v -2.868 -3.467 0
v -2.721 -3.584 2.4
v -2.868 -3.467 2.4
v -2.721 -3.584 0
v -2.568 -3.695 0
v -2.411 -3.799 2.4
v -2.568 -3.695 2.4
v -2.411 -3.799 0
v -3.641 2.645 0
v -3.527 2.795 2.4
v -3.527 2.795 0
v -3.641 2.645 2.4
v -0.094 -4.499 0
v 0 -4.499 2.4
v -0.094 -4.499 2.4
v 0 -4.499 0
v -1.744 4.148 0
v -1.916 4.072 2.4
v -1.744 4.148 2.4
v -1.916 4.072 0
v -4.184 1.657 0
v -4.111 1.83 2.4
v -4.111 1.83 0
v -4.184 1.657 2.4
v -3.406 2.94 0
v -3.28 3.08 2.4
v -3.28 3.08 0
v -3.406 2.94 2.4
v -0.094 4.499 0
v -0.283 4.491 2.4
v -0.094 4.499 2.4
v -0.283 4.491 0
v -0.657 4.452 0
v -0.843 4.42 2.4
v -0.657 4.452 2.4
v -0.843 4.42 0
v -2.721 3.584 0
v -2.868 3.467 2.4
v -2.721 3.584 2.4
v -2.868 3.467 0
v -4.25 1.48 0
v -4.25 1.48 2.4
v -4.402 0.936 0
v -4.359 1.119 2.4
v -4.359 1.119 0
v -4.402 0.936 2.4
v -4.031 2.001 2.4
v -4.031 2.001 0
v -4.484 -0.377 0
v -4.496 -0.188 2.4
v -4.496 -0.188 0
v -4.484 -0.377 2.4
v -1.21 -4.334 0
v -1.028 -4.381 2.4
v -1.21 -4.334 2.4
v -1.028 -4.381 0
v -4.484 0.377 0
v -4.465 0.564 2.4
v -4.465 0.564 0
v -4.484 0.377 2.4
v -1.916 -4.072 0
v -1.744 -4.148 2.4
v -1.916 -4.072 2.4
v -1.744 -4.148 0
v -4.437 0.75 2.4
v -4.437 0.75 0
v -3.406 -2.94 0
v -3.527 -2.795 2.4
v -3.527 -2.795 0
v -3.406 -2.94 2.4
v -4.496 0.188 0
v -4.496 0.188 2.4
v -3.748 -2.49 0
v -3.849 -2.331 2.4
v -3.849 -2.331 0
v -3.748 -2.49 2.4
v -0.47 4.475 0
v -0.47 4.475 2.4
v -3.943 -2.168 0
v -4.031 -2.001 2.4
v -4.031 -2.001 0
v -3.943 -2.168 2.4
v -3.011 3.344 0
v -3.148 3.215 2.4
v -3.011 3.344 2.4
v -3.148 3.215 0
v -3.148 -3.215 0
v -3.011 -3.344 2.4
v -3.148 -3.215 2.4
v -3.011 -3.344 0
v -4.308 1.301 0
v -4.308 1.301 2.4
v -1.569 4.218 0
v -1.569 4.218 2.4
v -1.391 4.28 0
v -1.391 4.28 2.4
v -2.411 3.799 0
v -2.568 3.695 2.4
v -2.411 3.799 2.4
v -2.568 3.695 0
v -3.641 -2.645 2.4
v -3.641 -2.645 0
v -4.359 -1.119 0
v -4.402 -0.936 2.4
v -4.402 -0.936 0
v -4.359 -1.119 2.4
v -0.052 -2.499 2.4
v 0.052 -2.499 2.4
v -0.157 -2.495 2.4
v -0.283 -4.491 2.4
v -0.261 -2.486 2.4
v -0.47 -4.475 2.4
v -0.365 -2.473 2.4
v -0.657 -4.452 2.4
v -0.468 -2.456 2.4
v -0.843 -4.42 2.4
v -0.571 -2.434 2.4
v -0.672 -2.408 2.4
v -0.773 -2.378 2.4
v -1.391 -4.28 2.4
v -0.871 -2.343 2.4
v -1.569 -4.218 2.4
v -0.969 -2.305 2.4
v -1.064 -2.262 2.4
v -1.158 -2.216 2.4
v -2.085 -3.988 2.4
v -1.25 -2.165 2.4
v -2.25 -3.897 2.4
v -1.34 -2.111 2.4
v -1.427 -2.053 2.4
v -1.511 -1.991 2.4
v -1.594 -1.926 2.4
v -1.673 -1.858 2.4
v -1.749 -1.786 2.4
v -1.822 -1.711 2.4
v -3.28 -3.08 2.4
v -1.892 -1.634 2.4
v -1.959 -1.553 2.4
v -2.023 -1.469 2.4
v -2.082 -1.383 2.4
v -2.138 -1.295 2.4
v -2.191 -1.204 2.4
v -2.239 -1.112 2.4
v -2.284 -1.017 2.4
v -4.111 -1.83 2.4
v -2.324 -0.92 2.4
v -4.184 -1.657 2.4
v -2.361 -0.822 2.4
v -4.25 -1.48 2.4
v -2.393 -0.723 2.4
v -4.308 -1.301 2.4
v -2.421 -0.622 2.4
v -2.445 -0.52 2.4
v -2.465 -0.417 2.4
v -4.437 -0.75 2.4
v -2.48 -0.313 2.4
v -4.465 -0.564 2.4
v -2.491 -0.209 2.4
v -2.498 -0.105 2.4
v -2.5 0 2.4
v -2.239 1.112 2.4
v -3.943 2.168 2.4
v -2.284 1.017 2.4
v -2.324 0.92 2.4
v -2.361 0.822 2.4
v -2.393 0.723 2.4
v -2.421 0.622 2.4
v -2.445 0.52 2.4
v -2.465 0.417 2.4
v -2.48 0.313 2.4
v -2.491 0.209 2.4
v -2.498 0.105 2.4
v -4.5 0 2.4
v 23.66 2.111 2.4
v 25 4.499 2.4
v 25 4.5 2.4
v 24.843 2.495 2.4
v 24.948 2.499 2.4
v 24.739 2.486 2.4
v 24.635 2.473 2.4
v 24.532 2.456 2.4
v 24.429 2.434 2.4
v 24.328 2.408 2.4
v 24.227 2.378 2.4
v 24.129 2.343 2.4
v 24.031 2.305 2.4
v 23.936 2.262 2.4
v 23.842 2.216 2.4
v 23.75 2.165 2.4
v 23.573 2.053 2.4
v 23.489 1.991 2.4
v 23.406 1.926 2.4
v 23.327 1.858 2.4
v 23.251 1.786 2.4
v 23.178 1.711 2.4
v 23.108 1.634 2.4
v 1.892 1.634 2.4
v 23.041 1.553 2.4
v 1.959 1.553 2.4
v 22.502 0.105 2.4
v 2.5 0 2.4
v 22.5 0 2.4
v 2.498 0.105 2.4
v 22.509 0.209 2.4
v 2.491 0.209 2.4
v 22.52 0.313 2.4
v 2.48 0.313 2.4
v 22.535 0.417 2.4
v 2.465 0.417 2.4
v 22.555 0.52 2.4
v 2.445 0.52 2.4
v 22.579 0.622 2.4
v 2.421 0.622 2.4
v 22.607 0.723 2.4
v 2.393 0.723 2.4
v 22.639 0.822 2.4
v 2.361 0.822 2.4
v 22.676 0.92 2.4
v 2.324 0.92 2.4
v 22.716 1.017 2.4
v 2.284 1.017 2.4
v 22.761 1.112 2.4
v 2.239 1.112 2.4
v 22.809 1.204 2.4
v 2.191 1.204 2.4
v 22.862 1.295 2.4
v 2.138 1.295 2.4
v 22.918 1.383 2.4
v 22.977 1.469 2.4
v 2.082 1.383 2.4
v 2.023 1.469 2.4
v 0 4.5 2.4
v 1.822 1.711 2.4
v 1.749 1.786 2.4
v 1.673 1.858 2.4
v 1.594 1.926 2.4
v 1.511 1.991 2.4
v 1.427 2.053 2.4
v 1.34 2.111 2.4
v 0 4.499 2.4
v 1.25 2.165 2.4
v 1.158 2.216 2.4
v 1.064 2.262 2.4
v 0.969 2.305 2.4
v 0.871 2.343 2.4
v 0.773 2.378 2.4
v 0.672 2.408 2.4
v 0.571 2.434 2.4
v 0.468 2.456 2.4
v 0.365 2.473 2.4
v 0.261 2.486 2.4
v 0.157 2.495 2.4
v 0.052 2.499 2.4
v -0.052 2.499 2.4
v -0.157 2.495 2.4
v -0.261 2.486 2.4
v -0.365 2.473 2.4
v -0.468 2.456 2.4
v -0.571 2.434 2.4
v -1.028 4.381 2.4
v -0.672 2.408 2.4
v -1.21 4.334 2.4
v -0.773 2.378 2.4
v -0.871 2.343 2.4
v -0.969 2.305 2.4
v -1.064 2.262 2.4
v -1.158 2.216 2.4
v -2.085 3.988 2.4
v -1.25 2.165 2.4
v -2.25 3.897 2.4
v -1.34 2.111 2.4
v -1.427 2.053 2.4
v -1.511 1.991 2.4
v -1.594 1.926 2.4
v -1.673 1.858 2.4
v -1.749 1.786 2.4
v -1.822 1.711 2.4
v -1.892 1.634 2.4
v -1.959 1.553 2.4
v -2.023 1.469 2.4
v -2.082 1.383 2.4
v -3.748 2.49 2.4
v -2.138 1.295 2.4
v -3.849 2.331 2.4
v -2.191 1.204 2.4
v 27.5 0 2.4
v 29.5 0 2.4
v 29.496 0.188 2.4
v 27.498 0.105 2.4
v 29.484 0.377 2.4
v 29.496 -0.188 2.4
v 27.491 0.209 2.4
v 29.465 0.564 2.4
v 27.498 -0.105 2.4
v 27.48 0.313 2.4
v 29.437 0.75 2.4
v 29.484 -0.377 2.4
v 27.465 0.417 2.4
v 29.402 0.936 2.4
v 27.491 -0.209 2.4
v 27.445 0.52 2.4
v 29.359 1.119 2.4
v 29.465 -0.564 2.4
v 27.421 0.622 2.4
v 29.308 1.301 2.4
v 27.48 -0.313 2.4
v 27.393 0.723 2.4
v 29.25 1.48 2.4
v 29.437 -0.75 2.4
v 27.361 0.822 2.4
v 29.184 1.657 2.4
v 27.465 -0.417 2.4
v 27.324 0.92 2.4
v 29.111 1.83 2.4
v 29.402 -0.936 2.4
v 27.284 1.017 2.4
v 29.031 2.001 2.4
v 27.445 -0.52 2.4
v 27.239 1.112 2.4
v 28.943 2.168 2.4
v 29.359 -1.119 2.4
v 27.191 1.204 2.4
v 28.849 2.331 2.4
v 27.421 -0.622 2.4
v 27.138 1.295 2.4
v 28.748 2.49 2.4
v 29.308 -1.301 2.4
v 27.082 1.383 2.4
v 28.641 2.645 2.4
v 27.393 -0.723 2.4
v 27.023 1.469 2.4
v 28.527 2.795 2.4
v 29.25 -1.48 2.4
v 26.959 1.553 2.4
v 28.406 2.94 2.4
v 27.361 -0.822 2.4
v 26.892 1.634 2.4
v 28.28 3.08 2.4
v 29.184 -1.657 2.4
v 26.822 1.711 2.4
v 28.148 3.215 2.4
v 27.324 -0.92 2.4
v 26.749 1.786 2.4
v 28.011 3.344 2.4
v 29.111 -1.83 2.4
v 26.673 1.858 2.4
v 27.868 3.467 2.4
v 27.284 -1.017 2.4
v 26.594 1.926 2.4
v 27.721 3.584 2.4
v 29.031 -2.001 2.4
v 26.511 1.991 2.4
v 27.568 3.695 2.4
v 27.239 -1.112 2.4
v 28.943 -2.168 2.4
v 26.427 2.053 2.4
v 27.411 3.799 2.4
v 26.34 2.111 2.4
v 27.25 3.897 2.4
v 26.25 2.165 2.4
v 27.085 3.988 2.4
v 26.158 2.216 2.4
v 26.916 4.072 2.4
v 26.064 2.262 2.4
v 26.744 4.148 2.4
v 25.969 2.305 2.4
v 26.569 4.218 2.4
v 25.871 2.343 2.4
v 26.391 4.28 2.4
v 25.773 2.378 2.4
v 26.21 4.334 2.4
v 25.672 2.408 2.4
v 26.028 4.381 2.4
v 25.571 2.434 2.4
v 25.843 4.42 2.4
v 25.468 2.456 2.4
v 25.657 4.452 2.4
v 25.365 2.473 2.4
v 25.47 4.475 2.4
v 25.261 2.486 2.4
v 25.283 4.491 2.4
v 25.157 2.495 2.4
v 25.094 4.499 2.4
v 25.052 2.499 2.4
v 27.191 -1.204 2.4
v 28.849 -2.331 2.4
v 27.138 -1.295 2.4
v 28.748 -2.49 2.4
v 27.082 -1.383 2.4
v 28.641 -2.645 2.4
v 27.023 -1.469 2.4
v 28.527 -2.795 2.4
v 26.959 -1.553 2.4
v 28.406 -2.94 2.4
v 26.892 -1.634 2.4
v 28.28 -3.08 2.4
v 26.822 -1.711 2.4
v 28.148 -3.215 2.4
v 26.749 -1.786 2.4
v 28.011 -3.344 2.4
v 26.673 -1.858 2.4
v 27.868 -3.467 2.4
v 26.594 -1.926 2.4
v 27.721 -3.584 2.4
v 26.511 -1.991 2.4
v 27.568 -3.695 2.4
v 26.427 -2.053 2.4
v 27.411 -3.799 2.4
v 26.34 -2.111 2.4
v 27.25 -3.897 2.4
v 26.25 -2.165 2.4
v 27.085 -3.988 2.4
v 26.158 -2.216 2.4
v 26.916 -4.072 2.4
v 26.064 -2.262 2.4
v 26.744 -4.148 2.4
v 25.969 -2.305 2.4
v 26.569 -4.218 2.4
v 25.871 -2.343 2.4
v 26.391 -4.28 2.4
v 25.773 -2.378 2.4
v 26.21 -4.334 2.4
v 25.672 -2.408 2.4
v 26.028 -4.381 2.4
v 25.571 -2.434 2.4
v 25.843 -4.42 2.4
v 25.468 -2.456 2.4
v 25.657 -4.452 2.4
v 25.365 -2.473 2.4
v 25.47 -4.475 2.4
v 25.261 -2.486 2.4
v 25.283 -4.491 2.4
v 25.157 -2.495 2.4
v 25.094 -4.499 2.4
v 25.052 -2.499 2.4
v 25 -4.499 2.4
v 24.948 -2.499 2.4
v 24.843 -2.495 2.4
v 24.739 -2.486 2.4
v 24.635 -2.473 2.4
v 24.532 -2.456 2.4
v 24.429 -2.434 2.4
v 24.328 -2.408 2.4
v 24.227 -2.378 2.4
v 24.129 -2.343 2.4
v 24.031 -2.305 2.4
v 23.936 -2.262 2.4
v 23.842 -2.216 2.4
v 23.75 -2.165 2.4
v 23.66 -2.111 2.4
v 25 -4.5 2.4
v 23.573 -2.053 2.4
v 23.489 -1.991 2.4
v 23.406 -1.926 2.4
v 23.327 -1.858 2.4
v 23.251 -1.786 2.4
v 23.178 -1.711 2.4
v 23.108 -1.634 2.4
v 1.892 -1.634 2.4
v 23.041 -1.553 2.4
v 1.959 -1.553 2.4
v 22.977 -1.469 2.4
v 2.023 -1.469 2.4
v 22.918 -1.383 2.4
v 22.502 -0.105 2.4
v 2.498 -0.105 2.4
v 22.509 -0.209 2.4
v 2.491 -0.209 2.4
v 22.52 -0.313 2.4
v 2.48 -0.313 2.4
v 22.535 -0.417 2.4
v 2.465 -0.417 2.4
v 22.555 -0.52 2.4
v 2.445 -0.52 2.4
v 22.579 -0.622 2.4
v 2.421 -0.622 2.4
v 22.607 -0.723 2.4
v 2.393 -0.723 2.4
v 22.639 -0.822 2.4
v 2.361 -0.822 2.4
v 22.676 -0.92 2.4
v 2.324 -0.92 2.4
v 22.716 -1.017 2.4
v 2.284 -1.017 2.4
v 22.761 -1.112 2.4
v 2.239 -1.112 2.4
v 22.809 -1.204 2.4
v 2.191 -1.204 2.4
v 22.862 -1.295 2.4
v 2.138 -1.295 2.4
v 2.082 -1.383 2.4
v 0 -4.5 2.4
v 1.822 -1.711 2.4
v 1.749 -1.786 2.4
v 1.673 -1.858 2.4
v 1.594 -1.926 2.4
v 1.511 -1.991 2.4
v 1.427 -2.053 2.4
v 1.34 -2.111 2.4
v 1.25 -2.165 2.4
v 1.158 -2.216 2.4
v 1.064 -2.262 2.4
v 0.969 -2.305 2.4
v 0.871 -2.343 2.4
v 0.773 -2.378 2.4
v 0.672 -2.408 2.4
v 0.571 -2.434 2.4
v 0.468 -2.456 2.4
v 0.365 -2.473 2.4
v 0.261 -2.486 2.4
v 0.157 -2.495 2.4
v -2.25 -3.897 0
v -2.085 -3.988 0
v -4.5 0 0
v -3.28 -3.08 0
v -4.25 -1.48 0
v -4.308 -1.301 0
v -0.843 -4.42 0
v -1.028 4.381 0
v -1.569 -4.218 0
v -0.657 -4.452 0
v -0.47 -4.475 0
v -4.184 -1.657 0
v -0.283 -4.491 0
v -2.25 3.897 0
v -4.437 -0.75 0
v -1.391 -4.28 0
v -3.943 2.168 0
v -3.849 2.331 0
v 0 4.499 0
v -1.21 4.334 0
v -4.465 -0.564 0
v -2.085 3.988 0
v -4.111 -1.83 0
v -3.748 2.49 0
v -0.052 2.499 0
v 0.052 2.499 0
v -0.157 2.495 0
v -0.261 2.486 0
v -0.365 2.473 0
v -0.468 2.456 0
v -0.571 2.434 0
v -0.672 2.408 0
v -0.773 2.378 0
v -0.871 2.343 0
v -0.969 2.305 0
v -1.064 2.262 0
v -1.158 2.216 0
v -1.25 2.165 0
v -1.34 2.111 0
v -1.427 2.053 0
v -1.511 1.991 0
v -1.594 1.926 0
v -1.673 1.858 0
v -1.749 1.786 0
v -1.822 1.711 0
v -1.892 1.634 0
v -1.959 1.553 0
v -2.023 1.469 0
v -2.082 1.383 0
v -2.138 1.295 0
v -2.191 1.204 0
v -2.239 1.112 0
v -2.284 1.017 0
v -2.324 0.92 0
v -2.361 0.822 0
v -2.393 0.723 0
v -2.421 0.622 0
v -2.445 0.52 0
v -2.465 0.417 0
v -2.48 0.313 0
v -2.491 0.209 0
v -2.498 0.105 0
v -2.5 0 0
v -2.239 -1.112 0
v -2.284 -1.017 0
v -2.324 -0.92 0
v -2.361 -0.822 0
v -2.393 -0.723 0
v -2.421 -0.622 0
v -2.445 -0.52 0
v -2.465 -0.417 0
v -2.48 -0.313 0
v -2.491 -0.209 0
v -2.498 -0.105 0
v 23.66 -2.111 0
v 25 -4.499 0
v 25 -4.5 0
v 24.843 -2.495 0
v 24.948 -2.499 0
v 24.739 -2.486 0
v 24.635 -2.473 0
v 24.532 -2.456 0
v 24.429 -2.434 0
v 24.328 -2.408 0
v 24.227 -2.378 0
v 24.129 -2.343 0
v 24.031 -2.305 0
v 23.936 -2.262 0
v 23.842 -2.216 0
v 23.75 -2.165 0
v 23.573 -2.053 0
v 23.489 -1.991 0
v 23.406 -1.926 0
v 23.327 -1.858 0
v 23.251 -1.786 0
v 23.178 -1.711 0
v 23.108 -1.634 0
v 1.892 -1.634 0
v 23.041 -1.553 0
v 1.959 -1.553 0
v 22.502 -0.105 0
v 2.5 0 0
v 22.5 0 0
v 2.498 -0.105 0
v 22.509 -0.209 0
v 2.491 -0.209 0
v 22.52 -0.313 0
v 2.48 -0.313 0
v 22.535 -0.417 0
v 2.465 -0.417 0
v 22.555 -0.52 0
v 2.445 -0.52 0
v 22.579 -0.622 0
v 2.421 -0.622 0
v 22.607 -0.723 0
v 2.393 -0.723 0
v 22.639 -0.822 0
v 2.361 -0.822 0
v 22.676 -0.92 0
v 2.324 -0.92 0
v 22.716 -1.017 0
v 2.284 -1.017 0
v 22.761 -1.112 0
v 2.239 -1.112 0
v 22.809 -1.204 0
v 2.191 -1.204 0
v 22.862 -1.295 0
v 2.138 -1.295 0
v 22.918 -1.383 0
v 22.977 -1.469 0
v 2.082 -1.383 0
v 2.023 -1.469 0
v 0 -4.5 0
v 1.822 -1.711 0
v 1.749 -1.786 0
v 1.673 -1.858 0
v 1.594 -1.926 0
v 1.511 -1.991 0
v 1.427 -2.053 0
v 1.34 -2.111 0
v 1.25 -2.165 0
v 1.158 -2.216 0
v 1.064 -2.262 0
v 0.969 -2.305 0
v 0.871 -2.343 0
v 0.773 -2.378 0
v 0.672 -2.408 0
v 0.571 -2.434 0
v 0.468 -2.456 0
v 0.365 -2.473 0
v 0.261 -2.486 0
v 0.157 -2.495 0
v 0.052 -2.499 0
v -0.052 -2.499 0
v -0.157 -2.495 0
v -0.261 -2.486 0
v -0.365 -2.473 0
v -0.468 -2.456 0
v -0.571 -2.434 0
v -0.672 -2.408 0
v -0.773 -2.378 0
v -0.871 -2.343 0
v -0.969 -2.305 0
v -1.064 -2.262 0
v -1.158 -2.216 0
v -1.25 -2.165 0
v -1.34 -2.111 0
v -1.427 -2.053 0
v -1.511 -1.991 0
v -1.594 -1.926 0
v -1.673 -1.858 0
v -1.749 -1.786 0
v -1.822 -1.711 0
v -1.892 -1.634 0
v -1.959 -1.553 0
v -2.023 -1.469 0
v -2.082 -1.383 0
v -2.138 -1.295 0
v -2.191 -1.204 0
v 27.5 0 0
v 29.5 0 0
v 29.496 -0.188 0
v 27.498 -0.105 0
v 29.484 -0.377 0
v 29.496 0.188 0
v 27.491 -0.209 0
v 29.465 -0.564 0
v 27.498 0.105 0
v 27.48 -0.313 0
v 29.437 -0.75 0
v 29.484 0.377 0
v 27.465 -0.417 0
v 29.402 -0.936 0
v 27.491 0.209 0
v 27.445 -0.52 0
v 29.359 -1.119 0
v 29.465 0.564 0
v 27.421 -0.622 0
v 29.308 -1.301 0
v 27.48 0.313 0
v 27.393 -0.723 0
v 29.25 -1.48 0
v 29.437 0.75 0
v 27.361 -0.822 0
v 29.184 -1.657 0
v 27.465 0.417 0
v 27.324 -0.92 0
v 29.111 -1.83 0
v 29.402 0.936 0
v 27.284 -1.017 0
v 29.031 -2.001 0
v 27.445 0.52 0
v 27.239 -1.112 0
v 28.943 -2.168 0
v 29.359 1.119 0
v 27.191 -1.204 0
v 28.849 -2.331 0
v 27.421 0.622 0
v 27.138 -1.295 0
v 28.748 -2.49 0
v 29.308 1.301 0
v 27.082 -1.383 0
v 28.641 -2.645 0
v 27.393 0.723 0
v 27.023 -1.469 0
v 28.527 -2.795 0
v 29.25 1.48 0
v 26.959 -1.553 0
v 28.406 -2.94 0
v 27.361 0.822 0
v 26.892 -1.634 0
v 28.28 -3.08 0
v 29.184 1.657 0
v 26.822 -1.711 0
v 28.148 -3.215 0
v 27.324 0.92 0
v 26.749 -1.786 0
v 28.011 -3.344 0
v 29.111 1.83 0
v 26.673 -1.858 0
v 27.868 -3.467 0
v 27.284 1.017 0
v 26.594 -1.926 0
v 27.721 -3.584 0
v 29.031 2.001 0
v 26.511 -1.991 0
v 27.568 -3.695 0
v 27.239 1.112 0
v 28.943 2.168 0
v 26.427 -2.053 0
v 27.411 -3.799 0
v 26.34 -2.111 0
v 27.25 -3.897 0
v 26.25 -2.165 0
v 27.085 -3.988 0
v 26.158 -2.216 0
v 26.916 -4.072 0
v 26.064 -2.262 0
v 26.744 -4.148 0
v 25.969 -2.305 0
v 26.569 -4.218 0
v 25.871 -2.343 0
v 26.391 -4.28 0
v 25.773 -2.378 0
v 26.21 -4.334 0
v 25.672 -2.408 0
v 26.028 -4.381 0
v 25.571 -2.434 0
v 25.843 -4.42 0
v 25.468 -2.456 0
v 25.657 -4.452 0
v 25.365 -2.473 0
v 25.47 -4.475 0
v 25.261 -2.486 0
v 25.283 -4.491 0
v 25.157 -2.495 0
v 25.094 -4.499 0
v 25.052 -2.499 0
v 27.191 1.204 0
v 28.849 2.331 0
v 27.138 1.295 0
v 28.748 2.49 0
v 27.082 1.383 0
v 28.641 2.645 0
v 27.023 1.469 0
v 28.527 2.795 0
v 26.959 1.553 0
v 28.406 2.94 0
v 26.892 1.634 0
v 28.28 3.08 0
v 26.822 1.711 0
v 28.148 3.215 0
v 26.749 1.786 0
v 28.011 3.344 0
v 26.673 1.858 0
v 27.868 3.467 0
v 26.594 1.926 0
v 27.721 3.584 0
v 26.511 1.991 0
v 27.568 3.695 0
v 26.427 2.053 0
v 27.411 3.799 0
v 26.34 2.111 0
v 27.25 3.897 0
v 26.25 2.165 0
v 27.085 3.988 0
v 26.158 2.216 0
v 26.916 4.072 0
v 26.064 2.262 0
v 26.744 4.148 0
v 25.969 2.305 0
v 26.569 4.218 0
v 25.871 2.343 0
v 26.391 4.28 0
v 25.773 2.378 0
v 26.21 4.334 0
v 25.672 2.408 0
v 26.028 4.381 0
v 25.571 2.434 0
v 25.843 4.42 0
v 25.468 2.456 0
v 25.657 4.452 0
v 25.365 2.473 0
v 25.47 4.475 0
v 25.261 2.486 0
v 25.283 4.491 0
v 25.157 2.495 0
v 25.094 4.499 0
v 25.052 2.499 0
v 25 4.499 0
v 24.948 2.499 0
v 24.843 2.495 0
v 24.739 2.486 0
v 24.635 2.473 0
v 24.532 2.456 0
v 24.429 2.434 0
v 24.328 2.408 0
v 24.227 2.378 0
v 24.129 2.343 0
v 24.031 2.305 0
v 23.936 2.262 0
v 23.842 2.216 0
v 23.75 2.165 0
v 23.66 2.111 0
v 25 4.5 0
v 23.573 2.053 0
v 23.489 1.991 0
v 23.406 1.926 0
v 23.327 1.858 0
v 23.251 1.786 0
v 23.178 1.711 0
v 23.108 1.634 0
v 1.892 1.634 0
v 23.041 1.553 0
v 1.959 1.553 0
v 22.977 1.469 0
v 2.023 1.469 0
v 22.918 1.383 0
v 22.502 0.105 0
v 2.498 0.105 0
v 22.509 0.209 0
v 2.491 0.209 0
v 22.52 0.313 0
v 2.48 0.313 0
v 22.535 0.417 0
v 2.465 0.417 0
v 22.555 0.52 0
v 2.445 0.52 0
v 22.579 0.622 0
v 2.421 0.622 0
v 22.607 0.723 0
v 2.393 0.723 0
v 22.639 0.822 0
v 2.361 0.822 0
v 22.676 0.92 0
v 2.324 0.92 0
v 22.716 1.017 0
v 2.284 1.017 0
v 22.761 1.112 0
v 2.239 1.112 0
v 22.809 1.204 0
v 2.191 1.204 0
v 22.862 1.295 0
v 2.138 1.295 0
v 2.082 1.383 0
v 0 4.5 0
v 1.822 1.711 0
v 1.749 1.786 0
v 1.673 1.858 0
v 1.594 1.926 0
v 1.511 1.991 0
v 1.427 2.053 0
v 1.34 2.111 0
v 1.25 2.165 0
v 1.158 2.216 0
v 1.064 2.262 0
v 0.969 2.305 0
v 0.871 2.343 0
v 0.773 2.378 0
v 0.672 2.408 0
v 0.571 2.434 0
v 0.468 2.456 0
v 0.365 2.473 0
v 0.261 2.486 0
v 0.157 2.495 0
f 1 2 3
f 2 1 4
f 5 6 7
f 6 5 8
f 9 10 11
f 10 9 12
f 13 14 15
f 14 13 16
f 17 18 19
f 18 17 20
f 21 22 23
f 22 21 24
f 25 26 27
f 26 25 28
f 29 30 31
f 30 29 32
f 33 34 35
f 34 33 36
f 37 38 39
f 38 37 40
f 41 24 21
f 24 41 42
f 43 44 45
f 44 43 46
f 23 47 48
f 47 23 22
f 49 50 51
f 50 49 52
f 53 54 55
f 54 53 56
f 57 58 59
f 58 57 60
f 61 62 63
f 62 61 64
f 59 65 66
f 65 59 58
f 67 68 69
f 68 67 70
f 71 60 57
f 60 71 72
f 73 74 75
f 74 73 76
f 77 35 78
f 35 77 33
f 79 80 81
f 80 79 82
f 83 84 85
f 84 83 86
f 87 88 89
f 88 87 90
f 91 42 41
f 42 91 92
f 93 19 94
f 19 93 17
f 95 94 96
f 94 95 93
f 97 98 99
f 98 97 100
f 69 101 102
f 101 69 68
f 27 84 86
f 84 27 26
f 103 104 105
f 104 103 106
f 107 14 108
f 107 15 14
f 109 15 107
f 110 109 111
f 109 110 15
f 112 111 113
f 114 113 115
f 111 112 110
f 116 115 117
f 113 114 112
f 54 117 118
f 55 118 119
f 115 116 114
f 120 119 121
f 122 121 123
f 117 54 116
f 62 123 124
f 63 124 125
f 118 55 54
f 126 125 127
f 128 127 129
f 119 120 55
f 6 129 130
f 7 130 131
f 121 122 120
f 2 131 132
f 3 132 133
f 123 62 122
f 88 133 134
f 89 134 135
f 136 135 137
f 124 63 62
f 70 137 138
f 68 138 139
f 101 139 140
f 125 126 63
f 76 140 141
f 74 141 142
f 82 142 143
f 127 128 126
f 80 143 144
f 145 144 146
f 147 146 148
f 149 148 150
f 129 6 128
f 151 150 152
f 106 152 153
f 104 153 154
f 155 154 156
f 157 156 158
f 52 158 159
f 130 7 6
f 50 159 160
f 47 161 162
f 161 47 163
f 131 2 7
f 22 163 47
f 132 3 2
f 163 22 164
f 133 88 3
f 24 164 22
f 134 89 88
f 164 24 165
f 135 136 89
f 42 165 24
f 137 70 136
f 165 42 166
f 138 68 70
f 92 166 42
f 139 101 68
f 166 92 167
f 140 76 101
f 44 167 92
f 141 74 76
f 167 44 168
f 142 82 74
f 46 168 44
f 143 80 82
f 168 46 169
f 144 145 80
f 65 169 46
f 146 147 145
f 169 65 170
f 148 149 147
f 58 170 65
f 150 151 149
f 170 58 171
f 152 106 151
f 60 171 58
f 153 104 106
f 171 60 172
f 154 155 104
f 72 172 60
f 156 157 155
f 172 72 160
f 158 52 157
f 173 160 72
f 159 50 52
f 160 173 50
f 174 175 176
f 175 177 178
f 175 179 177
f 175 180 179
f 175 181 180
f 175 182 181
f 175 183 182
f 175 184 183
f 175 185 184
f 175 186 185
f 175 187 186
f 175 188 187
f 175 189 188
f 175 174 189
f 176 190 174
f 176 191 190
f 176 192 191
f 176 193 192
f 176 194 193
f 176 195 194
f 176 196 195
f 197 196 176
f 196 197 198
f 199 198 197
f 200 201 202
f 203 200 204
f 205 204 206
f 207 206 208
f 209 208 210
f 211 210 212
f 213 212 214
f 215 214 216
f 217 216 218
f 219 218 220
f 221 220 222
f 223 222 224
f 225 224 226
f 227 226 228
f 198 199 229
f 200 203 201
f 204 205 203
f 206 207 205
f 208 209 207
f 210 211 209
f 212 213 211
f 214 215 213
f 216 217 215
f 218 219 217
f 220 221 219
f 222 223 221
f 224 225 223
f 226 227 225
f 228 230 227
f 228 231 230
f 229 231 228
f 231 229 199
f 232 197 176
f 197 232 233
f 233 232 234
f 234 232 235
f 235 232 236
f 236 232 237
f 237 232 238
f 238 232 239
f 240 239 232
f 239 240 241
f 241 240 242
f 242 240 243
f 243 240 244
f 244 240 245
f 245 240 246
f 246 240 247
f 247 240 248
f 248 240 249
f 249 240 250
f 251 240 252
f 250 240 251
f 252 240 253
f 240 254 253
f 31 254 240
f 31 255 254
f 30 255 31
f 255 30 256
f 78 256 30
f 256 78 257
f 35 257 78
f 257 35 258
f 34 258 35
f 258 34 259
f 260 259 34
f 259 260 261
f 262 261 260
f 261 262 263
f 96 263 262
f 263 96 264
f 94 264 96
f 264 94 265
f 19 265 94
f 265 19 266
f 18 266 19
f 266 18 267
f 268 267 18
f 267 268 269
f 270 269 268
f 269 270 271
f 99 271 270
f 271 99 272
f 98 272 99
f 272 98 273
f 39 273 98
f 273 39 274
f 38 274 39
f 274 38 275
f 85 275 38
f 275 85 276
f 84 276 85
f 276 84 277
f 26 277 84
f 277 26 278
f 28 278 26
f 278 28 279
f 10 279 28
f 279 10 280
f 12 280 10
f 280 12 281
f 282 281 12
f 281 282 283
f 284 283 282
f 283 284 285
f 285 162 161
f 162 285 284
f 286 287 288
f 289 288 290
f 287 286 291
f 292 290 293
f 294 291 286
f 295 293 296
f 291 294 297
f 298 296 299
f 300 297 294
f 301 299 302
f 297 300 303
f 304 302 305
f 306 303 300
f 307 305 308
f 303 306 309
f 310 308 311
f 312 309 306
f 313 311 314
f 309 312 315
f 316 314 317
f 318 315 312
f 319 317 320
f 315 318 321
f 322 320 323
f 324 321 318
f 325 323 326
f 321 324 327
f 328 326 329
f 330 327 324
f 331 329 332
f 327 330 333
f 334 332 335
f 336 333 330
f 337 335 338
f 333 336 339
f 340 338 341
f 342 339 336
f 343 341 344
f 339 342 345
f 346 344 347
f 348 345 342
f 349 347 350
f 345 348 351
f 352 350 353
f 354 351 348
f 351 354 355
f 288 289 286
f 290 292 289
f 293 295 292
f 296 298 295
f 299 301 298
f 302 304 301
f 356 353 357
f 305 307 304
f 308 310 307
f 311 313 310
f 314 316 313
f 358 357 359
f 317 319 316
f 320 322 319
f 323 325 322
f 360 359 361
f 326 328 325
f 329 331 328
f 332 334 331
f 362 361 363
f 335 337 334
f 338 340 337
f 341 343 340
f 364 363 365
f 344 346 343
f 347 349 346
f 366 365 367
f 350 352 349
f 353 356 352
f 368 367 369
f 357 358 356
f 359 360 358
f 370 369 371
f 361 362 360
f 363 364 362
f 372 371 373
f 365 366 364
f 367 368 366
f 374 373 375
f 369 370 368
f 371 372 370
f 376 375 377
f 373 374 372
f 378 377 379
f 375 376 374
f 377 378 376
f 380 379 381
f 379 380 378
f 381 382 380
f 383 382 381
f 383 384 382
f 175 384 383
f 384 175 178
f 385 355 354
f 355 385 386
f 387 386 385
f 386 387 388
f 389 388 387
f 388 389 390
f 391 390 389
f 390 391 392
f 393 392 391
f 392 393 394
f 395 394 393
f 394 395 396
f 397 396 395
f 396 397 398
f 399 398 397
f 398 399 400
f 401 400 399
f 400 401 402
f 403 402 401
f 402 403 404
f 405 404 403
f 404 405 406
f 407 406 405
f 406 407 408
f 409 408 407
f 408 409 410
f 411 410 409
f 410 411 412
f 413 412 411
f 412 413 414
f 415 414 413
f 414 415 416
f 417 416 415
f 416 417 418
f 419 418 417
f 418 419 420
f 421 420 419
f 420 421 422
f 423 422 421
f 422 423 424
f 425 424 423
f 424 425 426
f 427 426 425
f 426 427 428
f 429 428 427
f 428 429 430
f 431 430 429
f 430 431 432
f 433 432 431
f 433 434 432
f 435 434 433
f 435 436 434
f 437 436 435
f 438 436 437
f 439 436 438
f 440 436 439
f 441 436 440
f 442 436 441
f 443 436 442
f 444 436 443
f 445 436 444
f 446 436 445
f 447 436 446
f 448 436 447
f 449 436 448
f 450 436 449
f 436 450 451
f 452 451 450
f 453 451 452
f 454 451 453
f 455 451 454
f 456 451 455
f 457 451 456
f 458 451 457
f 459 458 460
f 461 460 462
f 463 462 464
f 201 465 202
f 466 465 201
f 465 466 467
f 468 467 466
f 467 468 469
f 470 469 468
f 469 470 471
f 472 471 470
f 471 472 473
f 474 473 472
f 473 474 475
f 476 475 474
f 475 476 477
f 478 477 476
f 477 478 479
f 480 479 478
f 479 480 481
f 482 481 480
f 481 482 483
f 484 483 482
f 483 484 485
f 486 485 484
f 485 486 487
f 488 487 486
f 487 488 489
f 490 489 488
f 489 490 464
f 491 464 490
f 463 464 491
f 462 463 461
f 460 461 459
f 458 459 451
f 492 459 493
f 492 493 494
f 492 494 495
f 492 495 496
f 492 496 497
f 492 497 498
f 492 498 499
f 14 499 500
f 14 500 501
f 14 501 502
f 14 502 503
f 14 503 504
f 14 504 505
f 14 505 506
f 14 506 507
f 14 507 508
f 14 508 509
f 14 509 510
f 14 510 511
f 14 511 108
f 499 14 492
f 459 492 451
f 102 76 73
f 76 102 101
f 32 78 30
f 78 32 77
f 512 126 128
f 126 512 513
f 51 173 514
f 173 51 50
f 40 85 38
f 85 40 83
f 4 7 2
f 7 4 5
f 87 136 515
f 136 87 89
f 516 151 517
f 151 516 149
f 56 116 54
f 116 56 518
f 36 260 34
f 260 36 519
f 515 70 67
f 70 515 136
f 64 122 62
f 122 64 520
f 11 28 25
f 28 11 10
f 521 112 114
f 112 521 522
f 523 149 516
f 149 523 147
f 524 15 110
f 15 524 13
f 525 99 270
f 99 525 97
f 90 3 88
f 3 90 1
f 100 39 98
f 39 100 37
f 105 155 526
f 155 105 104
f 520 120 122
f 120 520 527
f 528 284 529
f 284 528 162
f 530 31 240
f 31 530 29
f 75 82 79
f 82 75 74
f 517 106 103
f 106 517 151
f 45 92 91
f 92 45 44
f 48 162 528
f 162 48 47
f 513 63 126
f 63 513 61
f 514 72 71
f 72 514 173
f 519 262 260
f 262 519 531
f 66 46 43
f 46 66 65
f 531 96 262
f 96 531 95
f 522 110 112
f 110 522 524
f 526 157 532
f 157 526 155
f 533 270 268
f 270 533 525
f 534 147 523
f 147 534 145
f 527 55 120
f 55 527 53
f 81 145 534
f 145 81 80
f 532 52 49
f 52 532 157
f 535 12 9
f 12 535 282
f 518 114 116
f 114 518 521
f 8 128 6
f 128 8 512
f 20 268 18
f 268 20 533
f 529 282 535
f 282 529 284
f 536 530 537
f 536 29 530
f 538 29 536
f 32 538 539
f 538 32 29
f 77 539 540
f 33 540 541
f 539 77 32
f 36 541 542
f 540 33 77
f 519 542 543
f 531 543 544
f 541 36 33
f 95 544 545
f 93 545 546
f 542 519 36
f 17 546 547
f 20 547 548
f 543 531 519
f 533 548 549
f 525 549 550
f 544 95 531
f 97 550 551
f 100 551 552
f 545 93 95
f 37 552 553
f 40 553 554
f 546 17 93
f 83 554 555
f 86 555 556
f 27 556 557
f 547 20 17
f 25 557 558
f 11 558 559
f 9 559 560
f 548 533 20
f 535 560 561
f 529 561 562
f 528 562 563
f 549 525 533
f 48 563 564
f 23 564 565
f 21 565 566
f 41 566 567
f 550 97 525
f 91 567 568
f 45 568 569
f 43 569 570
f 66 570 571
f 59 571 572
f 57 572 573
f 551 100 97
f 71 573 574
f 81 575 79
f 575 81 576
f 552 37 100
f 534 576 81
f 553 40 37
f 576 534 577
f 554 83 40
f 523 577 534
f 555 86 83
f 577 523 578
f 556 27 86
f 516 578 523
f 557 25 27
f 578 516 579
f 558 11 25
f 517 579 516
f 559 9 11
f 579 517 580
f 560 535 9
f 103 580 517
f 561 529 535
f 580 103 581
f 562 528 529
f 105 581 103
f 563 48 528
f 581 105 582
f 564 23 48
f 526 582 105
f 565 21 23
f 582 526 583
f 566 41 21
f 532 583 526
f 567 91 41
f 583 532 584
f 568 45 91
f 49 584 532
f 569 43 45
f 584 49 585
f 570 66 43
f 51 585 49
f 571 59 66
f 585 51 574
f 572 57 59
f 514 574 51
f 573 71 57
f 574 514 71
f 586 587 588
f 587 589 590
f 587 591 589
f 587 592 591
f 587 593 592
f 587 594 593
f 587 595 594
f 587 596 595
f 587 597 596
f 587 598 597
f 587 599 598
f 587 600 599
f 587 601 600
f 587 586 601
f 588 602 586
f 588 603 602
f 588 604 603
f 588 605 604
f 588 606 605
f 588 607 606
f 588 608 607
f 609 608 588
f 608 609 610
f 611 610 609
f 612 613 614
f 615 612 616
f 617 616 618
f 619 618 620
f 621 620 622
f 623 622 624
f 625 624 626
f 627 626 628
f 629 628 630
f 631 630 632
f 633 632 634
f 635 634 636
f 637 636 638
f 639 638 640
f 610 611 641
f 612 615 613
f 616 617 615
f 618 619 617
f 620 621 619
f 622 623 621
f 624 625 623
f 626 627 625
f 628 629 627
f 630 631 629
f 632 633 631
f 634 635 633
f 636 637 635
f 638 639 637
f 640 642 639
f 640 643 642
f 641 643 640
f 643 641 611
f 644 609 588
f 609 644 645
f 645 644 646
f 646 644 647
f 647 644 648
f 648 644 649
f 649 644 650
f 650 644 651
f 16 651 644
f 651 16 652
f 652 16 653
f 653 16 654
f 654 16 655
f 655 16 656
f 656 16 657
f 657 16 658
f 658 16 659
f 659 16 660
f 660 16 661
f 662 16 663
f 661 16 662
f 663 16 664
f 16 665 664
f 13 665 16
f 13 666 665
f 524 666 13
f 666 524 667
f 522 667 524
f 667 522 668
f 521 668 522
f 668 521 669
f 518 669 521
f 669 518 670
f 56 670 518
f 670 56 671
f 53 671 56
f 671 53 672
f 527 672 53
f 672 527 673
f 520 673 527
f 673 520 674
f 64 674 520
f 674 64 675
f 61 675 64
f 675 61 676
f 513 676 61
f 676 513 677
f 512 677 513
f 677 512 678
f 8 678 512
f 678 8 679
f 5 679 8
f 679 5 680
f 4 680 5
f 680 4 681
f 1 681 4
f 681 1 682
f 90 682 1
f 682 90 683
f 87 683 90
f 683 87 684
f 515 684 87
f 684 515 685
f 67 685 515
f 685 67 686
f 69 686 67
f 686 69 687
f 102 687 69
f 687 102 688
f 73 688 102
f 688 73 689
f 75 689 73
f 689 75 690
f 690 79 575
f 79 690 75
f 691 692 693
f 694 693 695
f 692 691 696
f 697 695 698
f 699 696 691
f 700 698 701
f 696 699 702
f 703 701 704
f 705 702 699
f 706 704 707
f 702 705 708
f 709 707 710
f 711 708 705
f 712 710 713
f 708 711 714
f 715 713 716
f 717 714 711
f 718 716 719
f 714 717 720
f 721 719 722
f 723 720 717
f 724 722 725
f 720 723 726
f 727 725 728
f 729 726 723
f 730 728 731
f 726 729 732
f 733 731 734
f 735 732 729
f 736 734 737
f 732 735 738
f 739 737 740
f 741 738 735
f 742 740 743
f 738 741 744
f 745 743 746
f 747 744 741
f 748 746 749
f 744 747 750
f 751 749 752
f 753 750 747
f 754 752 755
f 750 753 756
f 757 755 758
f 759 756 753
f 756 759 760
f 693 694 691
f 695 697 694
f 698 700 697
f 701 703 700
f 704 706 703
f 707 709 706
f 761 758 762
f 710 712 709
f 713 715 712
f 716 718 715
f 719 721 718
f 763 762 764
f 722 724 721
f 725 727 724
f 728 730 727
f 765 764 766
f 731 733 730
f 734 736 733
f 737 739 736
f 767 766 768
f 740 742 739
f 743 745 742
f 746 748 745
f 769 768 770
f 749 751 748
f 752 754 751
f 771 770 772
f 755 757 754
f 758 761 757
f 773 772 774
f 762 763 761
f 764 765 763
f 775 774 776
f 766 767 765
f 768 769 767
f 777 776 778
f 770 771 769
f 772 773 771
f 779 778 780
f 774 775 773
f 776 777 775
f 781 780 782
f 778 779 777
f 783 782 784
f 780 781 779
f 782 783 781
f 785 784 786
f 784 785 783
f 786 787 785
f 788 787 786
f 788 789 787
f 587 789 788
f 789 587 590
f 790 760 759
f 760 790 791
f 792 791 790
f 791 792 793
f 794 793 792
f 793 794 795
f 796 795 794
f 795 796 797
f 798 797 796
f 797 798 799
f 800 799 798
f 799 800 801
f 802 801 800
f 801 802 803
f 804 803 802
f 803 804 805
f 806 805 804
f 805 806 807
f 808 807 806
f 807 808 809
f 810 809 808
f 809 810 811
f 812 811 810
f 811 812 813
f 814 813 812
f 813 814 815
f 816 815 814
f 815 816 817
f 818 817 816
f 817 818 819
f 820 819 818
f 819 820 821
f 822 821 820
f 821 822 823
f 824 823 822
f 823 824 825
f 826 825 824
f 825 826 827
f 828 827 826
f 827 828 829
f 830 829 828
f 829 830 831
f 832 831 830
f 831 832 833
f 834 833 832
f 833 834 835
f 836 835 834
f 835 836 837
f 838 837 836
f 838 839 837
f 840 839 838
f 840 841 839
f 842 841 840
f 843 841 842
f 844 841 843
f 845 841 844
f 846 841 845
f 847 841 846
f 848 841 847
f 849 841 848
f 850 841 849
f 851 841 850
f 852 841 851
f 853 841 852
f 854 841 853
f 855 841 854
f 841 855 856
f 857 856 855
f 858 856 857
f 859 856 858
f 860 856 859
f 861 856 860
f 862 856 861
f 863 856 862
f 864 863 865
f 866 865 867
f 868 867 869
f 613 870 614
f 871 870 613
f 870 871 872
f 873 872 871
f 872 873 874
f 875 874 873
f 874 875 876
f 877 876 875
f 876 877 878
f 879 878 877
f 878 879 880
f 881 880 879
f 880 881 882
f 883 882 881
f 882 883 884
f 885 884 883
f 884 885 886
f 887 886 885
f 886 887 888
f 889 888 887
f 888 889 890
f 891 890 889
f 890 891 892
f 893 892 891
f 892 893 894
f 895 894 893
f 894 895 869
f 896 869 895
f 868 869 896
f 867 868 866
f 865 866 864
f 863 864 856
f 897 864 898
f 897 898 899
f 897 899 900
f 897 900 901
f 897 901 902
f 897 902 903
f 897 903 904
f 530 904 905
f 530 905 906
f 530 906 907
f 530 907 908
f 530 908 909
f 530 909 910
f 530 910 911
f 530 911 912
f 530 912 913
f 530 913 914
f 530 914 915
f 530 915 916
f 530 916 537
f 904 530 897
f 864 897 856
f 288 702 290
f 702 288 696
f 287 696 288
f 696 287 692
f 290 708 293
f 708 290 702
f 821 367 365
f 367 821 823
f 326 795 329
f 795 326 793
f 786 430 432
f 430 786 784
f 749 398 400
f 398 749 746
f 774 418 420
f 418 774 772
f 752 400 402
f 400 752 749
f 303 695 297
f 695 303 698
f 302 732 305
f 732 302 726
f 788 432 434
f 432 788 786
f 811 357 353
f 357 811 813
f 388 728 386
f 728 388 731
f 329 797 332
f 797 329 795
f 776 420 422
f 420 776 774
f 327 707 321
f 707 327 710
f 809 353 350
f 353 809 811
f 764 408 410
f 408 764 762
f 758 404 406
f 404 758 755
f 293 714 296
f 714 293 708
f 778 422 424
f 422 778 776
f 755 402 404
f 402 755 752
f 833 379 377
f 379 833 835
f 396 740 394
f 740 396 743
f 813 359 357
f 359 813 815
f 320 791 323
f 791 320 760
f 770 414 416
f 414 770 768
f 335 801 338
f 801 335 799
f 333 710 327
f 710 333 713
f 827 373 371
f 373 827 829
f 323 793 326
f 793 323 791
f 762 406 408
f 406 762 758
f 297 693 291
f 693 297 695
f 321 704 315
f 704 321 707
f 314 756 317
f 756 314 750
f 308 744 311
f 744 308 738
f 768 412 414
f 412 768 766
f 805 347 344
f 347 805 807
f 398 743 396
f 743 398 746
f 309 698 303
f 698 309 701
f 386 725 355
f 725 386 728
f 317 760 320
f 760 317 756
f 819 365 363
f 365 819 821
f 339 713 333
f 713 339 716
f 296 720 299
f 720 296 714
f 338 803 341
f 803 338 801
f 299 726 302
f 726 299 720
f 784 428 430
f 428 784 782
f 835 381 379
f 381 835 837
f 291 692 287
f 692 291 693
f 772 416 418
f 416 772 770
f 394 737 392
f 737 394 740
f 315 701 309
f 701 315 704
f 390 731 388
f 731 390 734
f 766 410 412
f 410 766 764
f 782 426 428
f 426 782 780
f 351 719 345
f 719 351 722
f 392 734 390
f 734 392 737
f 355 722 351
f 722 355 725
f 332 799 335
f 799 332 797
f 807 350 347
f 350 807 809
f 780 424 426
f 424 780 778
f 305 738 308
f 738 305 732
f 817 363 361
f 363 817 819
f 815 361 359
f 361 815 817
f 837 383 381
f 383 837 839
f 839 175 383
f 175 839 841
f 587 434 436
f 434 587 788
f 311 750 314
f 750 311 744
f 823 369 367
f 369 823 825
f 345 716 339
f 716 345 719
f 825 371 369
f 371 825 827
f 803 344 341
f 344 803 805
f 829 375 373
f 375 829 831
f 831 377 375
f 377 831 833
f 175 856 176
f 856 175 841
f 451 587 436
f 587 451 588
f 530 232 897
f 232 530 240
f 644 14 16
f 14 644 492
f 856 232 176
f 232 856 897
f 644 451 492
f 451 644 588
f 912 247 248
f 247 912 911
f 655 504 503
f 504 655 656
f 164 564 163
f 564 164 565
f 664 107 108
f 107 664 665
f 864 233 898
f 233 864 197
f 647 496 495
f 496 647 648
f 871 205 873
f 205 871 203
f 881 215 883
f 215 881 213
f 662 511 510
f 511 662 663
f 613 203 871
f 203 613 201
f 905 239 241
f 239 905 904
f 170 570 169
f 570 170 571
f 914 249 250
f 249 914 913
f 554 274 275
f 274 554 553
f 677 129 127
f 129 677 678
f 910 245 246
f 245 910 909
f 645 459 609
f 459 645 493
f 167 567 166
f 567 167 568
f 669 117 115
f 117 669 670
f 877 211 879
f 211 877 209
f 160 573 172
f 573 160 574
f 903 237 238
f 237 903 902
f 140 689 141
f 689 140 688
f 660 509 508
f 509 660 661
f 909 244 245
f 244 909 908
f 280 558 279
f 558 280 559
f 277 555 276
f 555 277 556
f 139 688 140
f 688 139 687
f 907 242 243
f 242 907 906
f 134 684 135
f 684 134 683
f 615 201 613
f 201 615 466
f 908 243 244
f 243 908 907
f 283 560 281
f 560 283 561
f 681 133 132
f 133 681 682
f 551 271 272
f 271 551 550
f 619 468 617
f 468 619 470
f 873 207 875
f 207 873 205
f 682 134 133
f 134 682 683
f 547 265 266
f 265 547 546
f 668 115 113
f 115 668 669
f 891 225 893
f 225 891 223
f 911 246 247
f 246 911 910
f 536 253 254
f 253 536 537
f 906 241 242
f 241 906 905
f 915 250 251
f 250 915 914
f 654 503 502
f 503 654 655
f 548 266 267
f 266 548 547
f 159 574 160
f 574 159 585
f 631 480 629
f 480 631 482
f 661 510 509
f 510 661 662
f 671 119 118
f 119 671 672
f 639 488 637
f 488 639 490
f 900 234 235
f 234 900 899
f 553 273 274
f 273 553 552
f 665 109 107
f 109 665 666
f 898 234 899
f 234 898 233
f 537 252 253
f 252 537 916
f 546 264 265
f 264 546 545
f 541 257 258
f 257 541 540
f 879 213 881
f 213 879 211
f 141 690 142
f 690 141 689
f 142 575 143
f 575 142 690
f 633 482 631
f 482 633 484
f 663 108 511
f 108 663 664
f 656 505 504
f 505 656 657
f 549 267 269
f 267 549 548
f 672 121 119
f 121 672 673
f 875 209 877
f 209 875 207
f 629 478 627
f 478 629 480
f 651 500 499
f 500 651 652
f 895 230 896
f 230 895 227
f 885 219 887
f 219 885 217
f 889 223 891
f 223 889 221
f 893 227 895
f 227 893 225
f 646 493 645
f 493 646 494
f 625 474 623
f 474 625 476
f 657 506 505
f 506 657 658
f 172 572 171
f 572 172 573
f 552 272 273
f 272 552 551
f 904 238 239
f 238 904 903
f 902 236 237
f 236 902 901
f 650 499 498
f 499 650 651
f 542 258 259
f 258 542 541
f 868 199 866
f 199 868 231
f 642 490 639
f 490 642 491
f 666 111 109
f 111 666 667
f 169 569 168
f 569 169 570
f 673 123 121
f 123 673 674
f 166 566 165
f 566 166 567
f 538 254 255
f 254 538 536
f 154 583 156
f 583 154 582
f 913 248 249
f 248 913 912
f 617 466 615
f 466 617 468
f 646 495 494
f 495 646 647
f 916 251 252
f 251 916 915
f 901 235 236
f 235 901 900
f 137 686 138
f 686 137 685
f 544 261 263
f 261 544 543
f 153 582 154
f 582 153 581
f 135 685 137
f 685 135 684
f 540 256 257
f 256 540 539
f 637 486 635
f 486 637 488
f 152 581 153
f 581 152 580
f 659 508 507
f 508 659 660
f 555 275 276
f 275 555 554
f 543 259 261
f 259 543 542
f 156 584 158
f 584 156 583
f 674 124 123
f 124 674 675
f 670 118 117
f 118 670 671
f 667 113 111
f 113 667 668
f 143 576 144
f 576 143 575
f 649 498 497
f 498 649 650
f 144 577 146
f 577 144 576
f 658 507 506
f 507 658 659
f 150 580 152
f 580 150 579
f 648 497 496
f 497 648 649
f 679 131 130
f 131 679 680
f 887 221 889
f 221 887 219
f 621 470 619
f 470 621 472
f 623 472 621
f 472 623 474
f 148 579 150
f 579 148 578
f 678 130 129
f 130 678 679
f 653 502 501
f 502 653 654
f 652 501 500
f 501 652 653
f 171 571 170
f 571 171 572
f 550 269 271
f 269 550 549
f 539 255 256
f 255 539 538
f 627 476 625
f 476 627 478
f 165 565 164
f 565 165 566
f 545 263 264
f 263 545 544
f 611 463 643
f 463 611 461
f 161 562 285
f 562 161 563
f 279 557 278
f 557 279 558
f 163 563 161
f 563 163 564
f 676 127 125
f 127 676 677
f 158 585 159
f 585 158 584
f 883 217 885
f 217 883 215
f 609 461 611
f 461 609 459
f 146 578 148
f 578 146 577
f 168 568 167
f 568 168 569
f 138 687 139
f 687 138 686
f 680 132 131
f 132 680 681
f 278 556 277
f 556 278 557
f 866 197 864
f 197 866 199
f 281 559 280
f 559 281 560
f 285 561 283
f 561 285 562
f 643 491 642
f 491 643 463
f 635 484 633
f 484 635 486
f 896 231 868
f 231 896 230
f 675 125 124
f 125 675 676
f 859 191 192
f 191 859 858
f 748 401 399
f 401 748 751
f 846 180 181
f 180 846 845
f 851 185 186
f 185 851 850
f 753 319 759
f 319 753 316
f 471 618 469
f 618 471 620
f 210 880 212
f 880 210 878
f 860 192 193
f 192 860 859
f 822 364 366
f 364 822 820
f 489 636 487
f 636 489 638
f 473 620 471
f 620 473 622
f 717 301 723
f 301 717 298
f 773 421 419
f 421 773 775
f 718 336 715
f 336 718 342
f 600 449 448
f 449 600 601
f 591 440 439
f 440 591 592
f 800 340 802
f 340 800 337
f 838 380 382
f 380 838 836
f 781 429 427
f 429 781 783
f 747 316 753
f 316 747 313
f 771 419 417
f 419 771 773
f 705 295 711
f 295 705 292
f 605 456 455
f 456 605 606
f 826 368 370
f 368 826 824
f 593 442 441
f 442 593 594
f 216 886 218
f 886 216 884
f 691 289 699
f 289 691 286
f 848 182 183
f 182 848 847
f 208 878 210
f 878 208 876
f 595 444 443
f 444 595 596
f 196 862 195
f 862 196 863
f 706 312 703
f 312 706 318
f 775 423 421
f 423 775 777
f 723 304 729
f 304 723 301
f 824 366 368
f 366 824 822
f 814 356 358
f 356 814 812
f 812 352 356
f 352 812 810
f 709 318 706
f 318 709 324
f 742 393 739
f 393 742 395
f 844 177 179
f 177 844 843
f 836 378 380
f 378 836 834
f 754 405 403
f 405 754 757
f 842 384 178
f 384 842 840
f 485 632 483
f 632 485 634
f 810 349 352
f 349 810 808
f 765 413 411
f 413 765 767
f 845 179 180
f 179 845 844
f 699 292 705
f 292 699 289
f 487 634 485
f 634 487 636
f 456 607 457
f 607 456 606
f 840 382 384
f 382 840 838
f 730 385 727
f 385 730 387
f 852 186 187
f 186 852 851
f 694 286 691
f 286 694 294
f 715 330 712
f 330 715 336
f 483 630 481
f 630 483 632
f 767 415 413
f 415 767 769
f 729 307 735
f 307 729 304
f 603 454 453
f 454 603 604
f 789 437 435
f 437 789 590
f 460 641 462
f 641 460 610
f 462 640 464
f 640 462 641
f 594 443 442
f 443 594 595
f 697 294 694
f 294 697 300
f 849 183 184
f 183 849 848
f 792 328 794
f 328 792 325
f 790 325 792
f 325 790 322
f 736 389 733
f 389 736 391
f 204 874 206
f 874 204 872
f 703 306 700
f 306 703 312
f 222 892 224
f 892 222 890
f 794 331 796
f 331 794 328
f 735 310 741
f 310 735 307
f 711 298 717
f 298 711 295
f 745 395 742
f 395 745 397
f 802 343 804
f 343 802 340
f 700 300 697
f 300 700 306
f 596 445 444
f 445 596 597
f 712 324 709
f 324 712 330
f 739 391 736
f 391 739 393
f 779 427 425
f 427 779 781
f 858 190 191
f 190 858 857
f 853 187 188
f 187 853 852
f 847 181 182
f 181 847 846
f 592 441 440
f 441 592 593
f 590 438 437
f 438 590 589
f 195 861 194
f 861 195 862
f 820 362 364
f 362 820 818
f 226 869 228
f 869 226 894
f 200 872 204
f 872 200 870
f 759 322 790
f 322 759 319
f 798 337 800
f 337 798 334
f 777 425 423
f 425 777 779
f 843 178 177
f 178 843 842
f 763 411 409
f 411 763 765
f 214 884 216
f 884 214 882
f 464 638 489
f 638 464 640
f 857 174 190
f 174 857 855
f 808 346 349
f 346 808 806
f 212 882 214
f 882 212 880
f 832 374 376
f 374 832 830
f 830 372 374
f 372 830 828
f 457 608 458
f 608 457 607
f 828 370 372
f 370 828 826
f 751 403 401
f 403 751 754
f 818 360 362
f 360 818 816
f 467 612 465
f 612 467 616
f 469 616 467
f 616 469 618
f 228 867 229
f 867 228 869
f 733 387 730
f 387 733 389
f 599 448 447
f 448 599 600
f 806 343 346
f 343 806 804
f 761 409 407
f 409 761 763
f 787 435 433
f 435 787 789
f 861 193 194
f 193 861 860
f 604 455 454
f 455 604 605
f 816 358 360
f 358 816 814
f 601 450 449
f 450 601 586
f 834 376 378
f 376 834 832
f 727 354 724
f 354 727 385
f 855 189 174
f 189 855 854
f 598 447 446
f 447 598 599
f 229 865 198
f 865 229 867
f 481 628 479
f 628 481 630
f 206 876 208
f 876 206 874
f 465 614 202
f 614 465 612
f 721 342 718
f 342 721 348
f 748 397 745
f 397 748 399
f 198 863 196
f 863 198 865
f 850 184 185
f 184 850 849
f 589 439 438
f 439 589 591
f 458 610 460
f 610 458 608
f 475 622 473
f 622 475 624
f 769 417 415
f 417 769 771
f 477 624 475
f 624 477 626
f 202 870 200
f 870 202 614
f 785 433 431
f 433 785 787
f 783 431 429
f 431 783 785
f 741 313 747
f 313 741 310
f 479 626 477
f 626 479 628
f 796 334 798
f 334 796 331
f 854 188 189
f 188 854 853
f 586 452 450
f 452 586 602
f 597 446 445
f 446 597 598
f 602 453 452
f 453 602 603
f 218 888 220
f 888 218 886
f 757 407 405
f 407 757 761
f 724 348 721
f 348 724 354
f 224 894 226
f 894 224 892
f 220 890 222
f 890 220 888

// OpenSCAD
$fn = 150;
axisDistance = 25;
thickness = 2.4;
holeDiameter = 5;


width = 2*0.9 * holeDiameter;
echo("width:", width);

difference()
{
union()
{
    cylinder(h = thickness, d = width);
    
    translate([axisDistance,0,0])cylinder(h = thickness, d = width);
    
    translate([0,-width/2,0])cube([axisDistance,width,thickness]);
    
}// union

cylinder(h = thickness, d = holeDiameter);

translate([axisDistance,0,0])cylinder(h = thickness, d = holeDiameter);



}//difference
